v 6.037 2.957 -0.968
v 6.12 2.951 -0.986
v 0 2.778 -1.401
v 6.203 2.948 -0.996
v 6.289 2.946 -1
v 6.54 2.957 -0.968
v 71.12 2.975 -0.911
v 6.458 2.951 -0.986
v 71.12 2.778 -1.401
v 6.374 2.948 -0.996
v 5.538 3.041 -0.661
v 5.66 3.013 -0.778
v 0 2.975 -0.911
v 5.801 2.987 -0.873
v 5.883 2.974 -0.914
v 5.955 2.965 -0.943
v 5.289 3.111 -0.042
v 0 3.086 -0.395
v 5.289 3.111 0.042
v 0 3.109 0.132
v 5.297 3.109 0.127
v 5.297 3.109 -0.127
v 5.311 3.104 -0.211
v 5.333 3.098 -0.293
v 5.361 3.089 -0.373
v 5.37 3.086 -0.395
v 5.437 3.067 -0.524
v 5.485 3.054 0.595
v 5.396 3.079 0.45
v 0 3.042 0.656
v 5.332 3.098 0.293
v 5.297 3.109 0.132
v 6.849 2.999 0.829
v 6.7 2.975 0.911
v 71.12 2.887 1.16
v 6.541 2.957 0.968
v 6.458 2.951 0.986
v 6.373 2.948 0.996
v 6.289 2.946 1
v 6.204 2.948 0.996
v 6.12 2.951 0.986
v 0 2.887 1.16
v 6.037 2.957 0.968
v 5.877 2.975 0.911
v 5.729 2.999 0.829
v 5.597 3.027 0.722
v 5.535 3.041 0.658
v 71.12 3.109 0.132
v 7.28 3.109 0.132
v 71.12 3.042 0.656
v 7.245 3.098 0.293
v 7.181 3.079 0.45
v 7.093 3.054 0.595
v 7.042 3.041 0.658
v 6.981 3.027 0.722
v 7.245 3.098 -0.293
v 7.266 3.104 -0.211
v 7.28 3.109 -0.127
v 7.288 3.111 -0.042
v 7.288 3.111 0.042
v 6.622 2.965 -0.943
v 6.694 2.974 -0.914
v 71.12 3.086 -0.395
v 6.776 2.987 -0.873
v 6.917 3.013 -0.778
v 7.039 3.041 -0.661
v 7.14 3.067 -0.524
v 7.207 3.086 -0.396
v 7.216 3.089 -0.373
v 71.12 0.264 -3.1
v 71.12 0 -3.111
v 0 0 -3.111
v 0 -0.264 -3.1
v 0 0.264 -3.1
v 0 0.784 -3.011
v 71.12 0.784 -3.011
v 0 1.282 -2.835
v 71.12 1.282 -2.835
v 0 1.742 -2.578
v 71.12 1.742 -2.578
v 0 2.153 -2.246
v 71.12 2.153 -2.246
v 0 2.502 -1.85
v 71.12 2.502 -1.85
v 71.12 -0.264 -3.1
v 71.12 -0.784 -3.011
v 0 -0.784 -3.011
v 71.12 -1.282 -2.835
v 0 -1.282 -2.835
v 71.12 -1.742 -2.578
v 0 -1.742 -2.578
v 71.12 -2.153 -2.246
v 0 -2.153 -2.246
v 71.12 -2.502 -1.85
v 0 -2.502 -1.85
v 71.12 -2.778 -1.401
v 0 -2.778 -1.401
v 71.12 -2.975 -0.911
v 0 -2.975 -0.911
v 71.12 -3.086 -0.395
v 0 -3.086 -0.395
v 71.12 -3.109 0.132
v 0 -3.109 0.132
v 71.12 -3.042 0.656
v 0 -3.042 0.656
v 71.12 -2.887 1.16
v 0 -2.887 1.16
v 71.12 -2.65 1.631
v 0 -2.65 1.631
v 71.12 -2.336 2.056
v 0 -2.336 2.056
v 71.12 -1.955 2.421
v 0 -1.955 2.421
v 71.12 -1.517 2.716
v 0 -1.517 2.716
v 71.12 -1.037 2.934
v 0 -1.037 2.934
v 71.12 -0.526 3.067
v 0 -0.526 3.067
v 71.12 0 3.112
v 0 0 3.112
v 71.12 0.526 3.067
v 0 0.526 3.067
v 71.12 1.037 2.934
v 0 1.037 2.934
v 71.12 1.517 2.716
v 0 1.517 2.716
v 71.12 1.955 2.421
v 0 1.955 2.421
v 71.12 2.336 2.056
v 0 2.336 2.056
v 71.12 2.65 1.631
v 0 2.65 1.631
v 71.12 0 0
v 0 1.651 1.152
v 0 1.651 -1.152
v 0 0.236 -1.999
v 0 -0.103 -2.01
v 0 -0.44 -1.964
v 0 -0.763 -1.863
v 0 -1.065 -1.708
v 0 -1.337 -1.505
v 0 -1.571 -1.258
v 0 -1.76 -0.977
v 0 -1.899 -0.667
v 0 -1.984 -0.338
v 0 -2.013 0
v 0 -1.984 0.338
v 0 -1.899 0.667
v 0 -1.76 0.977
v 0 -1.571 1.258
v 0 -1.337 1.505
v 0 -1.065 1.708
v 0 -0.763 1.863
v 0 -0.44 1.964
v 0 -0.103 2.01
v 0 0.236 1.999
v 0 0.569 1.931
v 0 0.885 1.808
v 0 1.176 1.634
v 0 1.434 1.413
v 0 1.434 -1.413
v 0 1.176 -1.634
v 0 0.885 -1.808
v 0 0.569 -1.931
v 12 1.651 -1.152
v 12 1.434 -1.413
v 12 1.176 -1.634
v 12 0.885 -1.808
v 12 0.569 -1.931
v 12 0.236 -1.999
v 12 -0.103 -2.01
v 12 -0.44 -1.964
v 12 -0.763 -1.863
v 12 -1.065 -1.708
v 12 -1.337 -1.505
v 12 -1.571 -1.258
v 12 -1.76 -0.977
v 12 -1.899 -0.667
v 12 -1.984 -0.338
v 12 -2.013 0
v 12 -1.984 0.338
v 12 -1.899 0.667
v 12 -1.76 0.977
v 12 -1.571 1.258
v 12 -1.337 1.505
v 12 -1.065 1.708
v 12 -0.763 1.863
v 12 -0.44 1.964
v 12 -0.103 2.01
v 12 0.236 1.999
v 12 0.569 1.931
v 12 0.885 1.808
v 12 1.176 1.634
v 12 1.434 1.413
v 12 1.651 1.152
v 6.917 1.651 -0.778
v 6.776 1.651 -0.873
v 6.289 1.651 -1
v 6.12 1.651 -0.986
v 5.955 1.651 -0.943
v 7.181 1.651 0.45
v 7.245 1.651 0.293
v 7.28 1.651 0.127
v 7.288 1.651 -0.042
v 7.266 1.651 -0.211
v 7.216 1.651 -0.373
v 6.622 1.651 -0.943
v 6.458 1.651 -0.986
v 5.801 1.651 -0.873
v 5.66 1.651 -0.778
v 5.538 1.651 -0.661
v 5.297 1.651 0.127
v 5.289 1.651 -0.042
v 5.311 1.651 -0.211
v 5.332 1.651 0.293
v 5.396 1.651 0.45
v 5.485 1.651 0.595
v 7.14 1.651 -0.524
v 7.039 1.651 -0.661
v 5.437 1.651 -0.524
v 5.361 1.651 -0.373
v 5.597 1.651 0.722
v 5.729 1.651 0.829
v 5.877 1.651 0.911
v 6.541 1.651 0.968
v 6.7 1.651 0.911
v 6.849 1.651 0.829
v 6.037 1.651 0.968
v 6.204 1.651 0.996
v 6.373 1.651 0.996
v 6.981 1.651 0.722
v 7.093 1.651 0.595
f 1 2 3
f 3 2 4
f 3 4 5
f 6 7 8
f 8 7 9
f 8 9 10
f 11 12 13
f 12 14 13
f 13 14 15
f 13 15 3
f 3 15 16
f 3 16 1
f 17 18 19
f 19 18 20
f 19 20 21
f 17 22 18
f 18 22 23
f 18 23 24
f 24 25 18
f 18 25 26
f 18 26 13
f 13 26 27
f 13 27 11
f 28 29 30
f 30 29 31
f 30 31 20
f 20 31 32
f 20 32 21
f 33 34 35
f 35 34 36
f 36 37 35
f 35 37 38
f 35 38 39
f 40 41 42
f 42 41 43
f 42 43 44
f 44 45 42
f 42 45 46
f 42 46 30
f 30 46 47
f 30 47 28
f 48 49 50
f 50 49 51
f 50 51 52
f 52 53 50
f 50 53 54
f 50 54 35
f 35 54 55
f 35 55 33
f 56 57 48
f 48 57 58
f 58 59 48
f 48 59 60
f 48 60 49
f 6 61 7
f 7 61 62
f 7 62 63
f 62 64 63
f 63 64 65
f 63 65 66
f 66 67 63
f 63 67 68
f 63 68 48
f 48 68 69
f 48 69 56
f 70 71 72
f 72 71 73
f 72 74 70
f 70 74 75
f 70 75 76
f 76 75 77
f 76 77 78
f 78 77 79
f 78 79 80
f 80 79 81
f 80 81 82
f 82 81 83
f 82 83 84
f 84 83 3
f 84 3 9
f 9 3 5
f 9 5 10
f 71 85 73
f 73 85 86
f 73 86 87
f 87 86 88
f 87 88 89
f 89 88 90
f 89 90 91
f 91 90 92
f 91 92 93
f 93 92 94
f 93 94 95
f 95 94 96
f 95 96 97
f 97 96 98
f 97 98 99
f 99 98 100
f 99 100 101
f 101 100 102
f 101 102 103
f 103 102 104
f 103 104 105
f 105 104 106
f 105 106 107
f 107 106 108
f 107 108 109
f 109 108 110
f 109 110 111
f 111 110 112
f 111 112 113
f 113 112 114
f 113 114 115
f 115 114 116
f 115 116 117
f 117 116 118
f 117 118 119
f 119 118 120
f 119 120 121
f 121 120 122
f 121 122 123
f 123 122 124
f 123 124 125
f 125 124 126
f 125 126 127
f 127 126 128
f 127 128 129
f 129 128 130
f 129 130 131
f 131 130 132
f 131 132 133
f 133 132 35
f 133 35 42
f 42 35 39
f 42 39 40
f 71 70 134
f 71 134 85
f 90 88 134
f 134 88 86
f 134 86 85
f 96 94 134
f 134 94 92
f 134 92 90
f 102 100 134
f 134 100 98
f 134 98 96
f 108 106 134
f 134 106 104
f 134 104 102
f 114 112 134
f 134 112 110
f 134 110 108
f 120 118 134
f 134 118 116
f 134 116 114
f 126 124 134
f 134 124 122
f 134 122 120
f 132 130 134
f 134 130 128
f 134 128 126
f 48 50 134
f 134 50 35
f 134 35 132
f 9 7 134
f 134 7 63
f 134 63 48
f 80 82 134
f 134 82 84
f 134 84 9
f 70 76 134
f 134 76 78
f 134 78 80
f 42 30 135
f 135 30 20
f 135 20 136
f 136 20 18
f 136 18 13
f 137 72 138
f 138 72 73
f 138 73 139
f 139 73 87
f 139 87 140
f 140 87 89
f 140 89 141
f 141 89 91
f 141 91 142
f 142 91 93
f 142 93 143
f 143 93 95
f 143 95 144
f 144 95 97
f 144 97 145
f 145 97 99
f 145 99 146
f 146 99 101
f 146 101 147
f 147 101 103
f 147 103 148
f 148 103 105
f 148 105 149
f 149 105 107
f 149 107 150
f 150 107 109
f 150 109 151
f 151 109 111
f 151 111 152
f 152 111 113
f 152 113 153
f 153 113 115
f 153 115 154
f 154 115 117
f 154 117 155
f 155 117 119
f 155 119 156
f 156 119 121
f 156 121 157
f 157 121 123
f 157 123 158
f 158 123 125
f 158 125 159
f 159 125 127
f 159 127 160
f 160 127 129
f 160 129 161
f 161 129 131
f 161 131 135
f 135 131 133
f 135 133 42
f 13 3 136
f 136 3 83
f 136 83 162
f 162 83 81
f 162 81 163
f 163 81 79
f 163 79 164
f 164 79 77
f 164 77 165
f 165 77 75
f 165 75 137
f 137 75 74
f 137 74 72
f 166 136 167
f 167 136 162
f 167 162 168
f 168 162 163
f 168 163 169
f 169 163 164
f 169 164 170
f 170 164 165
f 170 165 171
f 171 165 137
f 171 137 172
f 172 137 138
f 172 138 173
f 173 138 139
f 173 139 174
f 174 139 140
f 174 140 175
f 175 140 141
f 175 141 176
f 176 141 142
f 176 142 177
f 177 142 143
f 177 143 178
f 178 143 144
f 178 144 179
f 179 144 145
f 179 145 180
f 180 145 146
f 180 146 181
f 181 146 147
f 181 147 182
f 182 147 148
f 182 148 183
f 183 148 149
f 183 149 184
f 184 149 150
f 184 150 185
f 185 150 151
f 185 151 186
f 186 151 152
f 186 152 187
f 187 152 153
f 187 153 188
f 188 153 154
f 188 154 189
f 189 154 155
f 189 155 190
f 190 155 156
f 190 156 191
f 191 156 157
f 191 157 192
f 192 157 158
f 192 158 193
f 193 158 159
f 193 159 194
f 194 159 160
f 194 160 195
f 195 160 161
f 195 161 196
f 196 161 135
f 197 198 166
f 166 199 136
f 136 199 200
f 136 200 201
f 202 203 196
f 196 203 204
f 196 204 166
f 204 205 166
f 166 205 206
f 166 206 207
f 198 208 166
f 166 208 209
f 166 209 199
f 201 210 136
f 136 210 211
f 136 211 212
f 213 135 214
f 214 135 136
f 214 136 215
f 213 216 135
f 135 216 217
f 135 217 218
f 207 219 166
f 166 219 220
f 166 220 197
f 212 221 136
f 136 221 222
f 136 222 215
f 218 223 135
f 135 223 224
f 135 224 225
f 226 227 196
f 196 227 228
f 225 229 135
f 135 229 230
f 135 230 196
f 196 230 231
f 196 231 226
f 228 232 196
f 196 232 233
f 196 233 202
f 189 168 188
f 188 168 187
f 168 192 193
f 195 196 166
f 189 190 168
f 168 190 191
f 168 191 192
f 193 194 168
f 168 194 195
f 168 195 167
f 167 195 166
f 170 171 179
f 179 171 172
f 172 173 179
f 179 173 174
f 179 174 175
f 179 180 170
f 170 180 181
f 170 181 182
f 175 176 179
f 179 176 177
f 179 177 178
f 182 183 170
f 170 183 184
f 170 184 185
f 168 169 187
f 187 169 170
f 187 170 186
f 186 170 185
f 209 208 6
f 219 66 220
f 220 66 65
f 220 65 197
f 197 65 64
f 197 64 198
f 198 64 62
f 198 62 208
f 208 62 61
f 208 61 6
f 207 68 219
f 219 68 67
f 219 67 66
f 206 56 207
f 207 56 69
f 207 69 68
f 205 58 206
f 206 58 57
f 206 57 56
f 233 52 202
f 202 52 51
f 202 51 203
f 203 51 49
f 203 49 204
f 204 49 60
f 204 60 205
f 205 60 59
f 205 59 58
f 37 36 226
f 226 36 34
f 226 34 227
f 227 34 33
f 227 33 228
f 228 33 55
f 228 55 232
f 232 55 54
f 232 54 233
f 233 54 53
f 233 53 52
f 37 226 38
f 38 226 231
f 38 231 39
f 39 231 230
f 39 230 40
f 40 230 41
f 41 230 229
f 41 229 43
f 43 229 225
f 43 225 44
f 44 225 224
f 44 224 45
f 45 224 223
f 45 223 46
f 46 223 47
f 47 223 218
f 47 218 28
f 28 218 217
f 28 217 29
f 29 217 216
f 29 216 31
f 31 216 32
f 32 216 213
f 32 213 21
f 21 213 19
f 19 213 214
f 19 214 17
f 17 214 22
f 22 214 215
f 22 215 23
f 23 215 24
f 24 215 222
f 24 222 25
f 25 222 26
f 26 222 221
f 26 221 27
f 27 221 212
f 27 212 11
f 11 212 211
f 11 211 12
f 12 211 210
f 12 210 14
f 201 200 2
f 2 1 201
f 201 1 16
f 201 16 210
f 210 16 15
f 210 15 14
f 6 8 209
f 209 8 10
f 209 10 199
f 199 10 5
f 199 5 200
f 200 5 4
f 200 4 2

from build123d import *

# Parameters (mm, degrees)
SKETCH1_R           = 3.1115
BOSS_EXTRUDE1_DEPTH = 71.12
CUT_EXTRUDE1_DEPTH  = 12
SKETCH3_R           = 1
CUT_EXTRUDE2_DEPTH  = 2.54


with BuildPart() as part:
    # Sketch1 → Boss-Extrude1 (new body)
    with BuildSketch(Plane(origin=(0, 0, 0), x_dir=(0, 0, -1), z_dir=(1, 0, 0))):
        Circle(SKETCH1_R)
    extrude(amount=BOSS_EXTRUDE1_DEPTH)

    # Sketch2 → Cut-Extrude1 (cut)
    with BuildSketch(Plane.ZY):
        with BuildLine():
            Line((-1.151593115, 1.651), (1.151593115, 1.651))
            ThreePointArc((1.151593115, 1.651), (0, -2.01295), (-1.151593115, 1.651))
        make_face()
    extrude(amount=-CUT_EXTRUDE1_DEPTH, mode=Mode.SUBTRACT)

    # Sketch3 → Cut-Extrude2 (cut)
    with BuildSketch(Plane.XZ.offset(-1.651)):
        with Locations((6.288563634, 0)):
            Circle(SKETCH3_R)
    extrude(amount=-CUT_EXTRUDE2_DEPTH, mode=Mode.SUBTRACT)


solid = part.part
